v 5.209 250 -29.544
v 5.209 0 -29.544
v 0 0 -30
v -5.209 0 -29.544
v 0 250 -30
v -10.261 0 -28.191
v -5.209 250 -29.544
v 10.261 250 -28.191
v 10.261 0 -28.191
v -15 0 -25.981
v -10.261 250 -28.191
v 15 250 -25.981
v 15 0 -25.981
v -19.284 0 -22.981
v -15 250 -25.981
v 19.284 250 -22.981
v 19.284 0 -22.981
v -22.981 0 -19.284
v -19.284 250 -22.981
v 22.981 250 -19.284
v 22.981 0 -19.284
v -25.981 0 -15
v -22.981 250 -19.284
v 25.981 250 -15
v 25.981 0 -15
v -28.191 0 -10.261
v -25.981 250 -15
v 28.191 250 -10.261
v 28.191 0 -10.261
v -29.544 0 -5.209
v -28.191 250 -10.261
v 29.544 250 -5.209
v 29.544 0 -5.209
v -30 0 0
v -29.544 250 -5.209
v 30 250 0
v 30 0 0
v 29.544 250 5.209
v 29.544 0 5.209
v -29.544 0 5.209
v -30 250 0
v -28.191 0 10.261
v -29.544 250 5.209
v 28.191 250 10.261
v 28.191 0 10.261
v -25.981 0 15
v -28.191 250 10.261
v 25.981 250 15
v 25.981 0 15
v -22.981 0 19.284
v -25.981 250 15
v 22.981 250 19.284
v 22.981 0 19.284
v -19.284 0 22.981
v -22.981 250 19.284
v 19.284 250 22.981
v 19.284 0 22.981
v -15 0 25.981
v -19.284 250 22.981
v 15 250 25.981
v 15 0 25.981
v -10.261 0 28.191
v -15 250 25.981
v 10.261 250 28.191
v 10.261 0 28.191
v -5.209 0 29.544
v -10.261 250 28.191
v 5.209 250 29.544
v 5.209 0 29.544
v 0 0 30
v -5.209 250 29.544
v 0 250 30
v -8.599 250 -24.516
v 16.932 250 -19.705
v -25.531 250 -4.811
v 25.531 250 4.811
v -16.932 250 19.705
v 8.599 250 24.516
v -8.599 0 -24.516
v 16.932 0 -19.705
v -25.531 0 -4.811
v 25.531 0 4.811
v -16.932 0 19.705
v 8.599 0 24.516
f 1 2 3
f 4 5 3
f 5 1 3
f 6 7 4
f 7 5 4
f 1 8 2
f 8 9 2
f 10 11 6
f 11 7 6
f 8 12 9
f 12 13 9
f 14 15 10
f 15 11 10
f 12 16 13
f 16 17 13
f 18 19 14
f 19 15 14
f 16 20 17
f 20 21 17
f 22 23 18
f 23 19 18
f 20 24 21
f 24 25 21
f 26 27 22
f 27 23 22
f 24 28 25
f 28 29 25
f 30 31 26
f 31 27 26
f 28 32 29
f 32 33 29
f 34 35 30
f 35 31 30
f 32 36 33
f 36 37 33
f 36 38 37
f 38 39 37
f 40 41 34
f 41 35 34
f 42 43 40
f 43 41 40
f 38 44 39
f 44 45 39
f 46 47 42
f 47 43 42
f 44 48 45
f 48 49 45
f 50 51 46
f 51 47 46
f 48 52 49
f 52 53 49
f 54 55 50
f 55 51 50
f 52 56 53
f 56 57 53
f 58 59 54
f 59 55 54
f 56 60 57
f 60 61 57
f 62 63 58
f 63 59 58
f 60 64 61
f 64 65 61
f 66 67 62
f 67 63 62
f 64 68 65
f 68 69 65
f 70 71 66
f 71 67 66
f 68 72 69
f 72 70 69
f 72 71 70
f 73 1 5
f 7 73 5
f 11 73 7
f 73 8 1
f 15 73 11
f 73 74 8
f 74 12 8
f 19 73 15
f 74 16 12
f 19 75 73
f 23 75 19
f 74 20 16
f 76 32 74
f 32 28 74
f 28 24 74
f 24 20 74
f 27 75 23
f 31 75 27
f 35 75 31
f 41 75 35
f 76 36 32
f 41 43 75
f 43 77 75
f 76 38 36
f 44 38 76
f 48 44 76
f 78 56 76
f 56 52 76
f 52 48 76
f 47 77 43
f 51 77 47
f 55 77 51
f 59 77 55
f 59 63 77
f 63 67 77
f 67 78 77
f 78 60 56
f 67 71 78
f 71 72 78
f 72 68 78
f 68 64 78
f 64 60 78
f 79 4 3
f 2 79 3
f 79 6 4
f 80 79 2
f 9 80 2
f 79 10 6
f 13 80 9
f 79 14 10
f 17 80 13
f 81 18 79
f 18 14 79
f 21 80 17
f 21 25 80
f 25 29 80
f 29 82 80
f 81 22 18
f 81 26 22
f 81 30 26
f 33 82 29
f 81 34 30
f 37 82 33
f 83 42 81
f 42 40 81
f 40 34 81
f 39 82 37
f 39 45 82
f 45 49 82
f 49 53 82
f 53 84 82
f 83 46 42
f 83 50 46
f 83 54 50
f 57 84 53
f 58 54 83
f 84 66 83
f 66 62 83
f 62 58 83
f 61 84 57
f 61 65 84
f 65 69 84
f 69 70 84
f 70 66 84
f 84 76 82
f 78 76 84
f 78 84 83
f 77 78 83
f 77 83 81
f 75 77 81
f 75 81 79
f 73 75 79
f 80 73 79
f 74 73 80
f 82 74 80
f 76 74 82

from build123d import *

# Parameters (mm, degrees)
SKETCH_1_R          = 30
EXTRUDE_1_DEPTH     = 250
CUT_EXTRUDE_1_DEPTH = 254.574446662


with BuildPart() as part:
    # 草图1 → 凸台-拉伸1 (new body)
    with BuildSketch(Plane(origin=(0, 0, 0), x_dir=(1, 0, 0), z_dir=(0, 1, 0))):
        with Locations(Location((0, 0, 0), (0, 0, 270))):
            Circle(SKETCH_1_R)
    extrude(amount=EXTRUDE_1_DEPTH)

    # 草图3 → 切除-拉伸1 (cut, through all)
    with BuildSketch(Plane(origin=(0, 250, 0), x_dir=(1, 0, 0), z_dir=(0, 1, 0))):
        Polygon((25.531400595, -4.811193579), (16.93231616, 19.70524472), (-8.599084435, 24.516438299), (-25.531400595, 4.811193579), (-16.93231616, -19.70524472), (8.599084435, -24.516438299), align=None)
    extrude(amount=-CUT_EXTRUDE_1_DEPTH, mode=Mode.SUBTRACT)


solid = part.part
